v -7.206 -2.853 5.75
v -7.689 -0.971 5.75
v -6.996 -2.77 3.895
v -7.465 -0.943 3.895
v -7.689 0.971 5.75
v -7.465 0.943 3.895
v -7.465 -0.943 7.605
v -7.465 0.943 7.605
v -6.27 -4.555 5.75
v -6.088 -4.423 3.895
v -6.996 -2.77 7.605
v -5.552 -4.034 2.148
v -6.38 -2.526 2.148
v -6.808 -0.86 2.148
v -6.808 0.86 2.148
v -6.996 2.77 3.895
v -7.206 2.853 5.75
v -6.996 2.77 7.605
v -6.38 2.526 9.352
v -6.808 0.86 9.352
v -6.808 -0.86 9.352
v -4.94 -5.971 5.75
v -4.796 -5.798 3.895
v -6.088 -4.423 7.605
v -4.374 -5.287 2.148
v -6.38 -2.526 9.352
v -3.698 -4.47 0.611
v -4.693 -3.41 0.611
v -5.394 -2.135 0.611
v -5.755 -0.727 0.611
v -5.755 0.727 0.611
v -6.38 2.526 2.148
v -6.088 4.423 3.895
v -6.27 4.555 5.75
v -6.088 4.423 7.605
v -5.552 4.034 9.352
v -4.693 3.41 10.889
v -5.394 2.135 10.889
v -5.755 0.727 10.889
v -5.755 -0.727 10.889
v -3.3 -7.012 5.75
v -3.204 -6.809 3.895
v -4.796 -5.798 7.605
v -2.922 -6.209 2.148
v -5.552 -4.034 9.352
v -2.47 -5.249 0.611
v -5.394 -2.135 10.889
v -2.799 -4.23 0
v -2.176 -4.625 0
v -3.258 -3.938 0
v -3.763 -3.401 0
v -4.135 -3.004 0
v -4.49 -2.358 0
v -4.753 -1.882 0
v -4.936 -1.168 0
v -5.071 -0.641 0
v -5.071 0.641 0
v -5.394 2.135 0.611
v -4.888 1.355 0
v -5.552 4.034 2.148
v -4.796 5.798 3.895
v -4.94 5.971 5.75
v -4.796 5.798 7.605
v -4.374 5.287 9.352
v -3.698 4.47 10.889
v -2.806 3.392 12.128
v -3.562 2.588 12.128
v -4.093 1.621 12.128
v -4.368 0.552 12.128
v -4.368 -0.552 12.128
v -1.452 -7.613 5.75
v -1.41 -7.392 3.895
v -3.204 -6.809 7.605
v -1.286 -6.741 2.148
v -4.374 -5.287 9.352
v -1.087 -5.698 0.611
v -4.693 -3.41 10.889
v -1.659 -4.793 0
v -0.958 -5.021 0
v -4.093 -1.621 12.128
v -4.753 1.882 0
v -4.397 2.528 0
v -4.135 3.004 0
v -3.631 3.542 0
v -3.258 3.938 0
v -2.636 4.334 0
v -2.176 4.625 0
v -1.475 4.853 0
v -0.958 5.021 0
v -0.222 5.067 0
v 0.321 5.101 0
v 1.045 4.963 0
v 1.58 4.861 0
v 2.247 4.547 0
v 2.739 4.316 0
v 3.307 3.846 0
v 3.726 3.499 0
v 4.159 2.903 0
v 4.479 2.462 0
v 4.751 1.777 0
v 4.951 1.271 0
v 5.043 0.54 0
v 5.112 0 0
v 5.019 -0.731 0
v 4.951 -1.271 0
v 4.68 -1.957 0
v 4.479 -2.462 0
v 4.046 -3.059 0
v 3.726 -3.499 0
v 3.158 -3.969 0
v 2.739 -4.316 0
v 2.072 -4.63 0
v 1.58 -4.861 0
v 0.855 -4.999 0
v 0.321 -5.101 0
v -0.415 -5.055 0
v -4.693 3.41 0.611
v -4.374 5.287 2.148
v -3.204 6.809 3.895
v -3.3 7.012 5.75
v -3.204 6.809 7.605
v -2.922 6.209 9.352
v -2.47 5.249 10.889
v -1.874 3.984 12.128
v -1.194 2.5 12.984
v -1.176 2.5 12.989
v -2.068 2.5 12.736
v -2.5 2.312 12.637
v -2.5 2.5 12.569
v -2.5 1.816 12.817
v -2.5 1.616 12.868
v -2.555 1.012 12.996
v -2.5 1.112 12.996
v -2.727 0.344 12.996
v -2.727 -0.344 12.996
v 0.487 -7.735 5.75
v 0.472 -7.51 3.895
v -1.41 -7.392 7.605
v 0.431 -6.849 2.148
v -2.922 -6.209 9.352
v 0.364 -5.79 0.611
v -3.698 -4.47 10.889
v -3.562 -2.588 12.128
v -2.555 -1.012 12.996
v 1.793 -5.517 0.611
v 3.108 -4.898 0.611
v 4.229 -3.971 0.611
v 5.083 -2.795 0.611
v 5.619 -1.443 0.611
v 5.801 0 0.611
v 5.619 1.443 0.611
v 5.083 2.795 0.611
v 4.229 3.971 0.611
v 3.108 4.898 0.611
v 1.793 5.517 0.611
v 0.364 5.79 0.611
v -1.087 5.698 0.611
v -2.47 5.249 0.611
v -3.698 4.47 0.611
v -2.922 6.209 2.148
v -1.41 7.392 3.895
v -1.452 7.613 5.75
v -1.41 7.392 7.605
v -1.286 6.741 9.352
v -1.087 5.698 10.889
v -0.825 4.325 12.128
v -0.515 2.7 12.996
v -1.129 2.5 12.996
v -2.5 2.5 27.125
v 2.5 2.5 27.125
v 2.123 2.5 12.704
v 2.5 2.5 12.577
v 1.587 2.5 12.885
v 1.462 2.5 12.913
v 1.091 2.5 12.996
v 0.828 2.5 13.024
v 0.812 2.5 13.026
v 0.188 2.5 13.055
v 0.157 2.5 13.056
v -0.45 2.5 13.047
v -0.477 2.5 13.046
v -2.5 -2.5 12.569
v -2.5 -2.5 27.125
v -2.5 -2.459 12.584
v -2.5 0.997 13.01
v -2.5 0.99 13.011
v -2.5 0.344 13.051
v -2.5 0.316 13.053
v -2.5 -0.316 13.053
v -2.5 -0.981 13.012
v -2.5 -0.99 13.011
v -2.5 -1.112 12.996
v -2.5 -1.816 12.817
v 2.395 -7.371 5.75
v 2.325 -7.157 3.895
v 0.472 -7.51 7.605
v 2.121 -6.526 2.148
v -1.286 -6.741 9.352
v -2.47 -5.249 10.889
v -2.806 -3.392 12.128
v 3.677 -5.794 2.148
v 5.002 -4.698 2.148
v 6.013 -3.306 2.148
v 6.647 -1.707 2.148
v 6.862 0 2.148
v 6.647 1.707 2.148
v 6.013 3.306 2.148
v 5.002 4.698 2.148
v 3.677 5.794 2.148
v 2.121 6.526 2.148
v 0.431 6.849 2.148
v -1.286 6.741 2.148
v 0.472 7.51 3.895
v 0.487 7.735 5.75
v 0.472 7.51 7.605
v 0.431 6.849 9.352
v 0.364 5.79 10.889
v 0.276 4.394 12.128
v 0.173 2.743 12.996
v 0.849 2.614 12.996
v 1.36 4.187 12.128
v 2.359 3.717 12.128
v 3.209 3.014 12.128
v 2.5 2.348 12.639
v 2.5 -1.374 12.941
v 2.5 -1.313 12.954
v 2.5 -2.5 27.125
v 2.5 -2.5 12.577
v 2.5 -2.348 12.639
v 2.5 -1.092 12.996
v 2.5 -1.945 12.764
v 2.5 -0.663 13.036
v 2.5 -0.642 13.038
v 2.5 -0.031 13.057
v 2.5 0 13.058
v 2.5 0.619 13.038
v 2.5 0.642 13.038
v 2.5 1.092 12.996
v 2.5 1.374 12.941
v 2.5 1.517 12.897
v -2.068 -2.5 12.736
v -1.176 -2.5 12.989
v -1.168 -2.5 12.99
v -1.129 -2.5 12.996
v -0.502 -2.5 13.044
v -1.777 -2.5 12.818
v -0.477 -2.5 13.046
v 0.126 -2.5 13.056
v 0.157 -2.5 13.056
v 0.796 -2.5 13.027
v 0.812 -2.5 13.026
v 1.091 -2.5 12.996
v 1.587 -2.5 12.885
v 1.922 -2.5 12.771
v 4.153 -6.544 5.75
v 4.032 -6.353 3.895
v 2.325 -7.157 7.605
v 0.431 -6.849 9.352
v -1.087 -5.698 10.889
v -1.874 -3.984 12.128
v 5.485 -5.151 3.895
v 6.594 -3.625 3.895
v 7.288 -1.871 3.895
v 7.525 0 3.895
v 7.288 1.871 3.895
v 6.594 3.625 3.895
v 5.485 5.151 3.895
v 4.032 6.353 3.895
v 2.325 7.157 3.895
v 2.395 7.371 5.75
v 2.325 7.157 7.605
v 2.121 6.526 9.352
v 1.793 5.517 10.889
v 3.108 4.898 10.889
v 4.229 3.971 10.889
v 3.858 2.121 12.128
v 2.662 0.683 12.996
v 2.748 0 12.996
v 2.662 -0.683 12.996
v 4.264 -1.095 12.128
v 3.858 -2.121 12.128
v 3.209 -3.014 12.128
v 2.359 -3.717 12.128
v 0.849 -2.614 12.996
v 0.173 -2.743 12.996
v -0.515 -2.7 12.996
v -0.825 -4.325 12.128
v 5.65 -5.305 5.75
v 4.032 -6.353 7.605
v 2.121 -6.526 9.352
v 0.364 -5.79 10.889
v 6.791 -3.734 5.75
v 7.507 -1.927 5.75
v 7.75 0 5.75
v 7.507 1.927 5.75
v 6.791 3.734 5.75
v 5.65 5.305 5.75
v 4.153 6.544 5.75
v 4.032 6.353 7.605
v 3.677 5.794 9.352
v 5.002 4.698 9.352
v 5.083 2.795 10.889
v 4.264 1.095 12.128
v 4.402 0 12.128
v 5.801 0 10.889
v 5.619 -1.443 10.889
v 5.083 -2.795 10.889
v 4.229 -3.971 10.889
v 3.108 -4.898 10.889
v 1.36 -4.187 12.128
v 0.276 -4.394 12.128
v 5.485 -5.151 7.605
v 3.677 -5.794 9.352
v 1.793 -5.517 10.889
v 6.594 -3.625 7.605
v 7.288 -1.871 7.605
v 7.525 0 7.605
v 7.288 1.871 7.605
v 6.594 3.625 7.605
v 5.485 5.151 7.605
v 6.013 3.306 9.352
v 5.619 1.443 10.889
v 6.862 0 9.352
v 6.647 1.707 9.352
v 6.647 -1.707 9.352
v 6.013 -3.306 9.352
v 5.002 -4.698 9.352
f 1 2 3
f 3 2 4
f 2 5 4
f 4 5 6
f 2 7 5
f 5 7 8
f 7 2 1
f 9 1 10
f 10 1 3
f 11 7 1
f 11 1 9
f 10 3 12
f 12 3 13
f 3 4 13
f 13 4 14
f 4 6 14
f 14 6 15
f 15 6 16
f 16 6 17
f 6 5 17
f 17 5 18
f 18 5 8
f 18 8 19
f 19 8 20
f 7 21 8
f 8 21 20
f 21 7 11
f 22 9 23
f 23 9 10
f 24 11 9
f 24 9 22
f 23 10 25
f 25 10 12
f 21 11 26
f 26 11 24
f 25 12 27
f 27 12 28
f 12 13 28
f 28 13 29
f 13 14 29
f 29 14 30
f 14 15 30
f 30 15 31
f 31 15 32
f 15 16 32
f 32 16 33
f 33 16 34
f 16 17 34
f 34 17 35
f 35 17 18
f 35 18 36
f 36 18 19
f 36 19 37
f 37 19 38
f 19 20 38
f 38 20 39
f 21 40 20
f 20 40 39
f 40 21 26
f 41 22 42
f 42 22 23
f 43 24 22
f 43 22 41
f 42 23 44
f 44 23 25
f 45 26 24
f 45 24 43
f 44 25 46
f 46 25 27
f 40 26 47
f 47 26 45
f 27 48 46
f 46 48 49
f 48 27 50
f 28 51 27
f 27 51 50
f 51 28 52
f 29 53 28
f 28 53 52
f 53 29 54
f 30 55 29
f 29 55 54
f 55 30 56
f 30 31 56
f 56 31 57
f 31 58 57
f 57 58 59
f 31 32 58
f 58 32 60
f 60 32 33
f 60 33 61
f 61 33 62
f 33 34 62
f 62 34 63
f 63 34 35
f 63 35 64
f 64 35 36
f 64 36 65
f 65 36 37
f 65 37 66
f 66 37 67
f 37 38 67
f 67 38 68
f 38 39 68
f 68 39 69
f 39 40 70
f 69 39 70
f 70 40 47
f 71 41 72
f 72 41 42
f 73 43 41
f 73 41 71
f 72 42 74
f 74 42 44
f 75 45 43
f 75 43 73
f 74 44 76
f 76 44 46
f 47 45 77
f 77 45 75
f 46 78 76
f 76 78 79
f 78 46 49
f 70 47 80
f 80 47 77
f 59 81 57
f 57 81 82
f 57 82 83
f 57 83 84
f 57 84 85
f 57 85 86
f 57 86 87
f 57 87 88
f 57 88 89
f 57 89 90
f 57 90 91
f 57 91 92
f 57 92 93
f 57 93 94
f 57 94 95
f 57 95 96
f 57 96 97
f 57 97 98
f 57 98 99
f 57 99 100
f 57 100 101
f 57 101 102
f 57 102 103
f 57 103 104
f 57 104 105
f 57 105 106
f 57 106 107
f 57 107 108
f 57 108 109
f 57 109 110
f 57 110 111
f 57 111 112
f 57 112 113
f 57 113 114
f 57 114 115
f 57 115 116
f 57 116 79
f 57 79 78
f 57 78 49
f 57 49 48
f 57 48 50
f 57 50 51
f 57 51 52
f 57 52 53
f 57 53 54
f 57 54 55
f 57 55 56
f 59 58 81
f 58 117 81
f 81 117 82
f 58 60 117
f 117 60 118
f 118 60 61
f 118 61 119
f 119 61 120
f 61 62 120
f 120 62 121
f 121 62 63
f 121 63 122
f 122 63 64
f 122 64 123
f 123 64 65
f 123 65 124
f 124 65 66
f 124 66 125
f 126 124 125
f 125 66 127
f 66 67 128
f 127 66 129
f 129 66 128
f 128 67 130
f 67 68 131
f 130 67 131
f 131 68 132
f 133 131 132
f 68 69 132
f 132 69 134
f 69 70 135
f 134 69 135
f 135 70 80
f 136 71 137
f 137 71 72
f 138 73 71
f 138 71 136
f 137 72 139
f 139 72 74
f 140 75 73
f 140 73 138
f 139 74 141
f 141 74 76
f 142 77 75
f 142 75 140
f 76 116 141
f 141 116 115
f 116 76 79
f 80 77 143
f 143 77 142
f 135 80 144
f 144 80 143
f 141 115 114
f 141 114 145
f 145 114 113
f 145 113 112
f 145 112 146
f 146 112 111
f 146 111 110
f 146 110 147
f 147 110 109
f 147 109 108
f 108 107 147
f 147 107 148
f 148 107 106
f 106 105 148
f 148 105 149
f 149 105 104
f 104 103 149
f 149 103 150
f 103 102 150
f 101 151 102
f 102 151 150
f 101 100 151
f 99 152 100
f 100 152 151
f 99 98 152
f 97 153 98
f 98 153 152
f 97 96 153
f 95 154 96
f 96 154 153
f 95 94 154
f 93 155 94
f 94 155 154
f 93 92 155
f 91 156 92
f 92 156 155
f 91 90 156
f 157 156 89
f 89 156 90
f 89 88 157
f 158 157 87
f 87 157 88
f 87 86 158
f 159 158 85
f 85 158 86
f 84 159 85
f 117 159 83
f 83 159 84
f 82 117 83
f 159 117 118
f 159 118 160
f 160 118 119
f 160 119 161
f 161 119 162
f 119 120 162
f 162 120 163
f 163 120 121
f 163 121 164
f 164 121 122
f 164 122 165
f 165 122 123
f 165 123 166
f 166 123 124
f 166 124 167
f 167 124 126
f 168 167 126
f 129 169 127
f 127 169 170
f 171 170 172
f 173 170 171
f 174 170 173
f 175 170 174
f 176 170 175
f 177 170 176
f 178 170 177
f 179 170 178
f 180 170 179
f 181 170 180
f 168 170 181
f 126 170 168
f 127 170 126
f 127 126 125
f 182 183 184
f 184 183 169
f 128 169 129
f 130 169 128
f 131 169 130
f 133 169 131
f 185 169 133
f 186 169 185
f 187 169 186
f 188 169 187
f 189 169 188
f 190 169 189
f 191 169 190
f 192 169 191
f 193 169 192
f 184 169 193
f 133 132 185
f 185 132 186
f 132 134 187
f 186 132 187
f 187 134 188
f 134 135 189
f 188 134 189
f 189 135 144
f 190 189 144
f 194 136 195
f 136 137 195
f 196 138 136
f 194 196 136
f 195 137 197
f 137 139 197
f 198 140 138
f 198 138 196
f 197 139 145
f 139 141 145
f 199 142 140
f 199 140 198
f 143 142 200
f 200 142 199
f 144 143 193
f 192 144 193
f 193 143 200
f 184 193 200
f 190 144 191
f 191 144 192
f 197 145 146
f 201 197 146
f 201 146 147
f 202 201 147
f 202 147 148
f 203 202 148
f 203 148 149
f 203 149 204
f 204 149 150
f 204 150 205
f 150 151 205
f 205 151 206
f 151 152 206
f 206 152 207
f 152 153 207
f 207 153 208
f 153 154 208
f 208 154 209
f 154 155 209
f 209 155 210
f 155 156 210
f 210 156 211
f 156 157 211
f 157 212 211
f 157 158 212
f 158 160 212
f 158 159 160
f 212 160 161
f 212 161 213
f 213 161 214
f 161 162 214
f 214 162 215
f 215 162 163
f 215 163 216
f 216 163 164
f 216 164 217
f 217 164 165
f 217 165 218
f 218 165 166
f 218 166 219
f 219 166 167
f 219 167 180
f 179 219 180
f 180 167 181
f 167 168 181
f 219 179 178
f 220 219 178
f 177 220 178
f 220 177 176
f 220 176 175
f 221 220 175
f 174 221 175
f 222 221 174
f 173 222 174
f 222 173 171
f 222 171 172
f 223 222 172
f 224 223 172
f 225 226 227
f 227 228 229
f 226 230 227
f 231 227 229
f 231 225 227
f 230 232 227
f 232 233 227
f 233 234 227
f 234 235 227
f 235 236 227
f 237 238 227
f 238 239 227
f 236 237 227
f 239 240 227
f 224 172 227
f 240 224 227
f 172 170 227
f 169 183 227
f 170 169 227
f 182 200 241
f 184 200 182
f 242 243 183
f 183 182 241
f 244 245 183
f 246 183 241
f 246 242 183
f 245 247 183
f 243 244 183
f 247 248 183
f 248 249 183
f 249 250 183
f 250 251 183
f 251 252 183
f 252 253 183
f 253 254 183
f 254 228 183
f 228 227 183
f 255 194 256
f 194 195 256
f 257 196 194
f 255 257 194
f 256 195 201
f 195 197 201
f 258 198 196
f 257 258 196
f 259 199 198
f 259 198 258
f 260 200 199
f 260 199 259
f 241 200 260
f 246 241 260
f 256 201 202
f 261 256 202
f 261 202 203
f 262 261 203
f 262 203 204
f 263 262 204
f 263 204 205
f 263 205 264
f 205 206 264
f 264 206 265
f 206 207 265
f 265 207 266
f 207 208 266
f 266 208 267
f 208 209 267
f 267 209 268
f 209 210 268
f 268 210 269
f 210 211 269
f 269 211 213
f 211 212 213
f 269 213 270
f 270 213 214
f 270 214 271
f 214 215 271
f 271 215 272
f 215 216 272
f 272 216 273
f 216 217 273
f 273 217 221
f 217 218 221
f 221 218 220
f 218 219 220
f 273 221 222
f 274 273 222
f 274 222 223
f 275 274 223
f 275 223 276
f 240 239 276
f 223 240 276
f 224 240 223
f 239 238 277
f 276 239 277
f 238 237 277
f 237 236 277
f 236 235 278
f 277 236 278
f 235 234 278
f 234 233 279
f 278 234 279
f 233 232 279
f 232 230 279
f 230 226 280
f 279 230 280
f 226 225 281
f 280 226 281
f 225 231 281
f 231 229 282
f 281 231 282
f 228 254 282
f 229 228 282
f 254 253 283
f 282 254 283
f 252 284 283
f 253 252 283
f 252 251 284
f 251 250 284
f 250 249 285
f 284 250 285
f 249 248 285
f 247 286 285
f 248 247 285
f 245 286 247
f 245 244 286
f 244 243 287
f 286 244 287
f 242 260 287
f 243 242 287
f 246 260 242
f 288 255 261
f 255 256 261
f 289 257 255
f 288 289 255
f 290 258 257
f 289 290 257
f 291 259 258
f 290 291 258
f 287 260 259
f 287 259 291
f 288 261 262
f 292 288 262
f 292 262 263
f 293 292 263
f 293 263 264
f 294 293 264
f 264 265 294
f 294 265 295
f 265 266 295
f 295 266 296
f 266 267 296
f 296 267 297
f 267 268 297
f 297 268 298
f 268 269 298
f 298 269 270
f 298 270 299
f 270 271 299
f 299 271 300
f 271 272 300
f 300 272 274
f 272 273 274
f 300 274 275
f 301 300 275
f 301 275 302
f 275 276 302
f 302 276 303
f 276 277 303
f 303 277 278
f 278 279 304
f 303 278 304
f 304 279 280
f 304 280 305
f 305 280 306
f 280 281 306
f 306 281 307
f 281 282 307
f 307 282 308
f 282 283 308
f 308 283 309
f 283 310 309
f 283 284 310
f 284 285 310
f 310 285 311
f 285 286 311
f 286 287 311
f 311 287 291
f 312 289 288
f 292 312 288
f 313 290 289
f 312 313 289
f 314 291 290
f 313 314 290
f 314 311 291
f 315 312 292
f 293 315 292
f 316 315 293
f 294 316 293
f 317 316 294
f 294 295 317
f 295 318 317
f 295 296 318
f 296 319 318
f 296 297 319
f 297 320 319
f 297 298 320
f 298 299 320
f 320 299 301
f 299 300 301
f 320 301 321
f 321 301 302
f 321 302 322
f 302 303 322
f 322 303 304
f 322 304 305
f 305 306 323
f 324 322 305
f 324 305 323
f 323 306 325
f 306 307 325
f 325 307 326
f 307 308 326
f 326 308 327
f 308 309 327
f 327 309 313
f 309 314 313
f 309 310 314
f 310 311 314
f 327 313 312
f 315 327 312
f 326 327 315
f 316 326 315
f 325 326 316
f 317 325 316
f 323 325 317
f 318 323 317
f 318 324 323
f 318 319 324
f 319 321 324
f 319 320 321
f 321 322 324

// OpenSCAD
radius = 7.75;
wall = 2;
diameter = radius * 2;
base = diameter + 10;
width = base + 10;
inset = 1;
epsilon = 1;
jointwidth=5;

difference() {
	translate([0, 0, radius-wall]) sphere(radius);
	translate([-base/2, -base/2, -wall])  cube([base, base, wall]);
}

translate([-jointwidth/2, -jointwidth/2, radius]) cube([jointwidth, jointwidth, radius * 2.5]);
